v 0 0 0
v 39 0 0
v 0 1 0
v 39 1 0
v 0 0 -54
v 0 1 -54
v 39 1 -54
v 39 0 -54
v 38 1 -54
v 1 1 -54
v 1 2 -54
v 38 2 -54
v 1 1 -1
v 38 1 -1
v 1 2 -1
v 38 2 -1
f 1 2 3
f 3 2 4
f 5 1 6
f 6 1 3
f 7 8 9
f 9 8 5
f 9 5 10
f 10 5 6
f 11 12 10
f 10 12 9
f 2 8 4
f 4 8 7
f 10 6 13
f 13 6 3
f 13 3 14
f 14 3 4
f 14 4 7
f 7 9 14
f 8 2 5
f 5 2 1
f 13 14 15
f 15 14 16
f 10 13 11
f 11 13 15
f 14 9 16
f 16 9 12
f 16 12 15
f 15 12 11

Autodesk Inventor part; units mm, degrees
ref_plane "YZ Plane" through (0, 0, 0) normal (1, 0, 0) x (0, 1, 0)
ref_plane "XZ Plane" through (0, 0, 0) normal (0, 1, 0) x (-1, 0, 0)
ref_plane "XY Plane" through (0, 0, 0) normal (0, 0, 1) x (1, 0, 0)
sketch "スケッチ1" plane through (0, 0, 0) normal (0, 1, 0) x (-1, 0, 0)
  line L0 (0, 0) -> (-39, 0)
  line L1 (-39, 0) -> (-39, -54)
  line L2 (-39, -54) -> (0, -54)
  line L3 (0, -54) -> (0, 0)
  dimension "d0" = 39
  dimension "d1" = 54
extrude "押し出し1" add sketch "スケッチ1" along normal blind 1
sketch "スケッチ3" plane through (0, 1, 0) normal (0, 1, 0) x (1, 0, 0)
  line L0 (1, 1) -> (38, 1)
  line L1 (38, 1) -> (38, 54)
  line L2 (38, 54) -> (1, 54)
  line L3 (1, 54) -> (1, 1)
  line L4 (39, 54) -> (0, 54) projected
  line L5 (0, 54) -> (0, 0) projected
  dimension "d4" = 37
  dimension "d5" = 53
  dimension "d6" = 0
  dimension "d7" = 1
extrude "押し出し2" add sketch "スケッチ3" along normal blind 1
fillet "フィレット1" radius 1 1 edges at (19.5, 2, -54)
properties part number "case_top"
